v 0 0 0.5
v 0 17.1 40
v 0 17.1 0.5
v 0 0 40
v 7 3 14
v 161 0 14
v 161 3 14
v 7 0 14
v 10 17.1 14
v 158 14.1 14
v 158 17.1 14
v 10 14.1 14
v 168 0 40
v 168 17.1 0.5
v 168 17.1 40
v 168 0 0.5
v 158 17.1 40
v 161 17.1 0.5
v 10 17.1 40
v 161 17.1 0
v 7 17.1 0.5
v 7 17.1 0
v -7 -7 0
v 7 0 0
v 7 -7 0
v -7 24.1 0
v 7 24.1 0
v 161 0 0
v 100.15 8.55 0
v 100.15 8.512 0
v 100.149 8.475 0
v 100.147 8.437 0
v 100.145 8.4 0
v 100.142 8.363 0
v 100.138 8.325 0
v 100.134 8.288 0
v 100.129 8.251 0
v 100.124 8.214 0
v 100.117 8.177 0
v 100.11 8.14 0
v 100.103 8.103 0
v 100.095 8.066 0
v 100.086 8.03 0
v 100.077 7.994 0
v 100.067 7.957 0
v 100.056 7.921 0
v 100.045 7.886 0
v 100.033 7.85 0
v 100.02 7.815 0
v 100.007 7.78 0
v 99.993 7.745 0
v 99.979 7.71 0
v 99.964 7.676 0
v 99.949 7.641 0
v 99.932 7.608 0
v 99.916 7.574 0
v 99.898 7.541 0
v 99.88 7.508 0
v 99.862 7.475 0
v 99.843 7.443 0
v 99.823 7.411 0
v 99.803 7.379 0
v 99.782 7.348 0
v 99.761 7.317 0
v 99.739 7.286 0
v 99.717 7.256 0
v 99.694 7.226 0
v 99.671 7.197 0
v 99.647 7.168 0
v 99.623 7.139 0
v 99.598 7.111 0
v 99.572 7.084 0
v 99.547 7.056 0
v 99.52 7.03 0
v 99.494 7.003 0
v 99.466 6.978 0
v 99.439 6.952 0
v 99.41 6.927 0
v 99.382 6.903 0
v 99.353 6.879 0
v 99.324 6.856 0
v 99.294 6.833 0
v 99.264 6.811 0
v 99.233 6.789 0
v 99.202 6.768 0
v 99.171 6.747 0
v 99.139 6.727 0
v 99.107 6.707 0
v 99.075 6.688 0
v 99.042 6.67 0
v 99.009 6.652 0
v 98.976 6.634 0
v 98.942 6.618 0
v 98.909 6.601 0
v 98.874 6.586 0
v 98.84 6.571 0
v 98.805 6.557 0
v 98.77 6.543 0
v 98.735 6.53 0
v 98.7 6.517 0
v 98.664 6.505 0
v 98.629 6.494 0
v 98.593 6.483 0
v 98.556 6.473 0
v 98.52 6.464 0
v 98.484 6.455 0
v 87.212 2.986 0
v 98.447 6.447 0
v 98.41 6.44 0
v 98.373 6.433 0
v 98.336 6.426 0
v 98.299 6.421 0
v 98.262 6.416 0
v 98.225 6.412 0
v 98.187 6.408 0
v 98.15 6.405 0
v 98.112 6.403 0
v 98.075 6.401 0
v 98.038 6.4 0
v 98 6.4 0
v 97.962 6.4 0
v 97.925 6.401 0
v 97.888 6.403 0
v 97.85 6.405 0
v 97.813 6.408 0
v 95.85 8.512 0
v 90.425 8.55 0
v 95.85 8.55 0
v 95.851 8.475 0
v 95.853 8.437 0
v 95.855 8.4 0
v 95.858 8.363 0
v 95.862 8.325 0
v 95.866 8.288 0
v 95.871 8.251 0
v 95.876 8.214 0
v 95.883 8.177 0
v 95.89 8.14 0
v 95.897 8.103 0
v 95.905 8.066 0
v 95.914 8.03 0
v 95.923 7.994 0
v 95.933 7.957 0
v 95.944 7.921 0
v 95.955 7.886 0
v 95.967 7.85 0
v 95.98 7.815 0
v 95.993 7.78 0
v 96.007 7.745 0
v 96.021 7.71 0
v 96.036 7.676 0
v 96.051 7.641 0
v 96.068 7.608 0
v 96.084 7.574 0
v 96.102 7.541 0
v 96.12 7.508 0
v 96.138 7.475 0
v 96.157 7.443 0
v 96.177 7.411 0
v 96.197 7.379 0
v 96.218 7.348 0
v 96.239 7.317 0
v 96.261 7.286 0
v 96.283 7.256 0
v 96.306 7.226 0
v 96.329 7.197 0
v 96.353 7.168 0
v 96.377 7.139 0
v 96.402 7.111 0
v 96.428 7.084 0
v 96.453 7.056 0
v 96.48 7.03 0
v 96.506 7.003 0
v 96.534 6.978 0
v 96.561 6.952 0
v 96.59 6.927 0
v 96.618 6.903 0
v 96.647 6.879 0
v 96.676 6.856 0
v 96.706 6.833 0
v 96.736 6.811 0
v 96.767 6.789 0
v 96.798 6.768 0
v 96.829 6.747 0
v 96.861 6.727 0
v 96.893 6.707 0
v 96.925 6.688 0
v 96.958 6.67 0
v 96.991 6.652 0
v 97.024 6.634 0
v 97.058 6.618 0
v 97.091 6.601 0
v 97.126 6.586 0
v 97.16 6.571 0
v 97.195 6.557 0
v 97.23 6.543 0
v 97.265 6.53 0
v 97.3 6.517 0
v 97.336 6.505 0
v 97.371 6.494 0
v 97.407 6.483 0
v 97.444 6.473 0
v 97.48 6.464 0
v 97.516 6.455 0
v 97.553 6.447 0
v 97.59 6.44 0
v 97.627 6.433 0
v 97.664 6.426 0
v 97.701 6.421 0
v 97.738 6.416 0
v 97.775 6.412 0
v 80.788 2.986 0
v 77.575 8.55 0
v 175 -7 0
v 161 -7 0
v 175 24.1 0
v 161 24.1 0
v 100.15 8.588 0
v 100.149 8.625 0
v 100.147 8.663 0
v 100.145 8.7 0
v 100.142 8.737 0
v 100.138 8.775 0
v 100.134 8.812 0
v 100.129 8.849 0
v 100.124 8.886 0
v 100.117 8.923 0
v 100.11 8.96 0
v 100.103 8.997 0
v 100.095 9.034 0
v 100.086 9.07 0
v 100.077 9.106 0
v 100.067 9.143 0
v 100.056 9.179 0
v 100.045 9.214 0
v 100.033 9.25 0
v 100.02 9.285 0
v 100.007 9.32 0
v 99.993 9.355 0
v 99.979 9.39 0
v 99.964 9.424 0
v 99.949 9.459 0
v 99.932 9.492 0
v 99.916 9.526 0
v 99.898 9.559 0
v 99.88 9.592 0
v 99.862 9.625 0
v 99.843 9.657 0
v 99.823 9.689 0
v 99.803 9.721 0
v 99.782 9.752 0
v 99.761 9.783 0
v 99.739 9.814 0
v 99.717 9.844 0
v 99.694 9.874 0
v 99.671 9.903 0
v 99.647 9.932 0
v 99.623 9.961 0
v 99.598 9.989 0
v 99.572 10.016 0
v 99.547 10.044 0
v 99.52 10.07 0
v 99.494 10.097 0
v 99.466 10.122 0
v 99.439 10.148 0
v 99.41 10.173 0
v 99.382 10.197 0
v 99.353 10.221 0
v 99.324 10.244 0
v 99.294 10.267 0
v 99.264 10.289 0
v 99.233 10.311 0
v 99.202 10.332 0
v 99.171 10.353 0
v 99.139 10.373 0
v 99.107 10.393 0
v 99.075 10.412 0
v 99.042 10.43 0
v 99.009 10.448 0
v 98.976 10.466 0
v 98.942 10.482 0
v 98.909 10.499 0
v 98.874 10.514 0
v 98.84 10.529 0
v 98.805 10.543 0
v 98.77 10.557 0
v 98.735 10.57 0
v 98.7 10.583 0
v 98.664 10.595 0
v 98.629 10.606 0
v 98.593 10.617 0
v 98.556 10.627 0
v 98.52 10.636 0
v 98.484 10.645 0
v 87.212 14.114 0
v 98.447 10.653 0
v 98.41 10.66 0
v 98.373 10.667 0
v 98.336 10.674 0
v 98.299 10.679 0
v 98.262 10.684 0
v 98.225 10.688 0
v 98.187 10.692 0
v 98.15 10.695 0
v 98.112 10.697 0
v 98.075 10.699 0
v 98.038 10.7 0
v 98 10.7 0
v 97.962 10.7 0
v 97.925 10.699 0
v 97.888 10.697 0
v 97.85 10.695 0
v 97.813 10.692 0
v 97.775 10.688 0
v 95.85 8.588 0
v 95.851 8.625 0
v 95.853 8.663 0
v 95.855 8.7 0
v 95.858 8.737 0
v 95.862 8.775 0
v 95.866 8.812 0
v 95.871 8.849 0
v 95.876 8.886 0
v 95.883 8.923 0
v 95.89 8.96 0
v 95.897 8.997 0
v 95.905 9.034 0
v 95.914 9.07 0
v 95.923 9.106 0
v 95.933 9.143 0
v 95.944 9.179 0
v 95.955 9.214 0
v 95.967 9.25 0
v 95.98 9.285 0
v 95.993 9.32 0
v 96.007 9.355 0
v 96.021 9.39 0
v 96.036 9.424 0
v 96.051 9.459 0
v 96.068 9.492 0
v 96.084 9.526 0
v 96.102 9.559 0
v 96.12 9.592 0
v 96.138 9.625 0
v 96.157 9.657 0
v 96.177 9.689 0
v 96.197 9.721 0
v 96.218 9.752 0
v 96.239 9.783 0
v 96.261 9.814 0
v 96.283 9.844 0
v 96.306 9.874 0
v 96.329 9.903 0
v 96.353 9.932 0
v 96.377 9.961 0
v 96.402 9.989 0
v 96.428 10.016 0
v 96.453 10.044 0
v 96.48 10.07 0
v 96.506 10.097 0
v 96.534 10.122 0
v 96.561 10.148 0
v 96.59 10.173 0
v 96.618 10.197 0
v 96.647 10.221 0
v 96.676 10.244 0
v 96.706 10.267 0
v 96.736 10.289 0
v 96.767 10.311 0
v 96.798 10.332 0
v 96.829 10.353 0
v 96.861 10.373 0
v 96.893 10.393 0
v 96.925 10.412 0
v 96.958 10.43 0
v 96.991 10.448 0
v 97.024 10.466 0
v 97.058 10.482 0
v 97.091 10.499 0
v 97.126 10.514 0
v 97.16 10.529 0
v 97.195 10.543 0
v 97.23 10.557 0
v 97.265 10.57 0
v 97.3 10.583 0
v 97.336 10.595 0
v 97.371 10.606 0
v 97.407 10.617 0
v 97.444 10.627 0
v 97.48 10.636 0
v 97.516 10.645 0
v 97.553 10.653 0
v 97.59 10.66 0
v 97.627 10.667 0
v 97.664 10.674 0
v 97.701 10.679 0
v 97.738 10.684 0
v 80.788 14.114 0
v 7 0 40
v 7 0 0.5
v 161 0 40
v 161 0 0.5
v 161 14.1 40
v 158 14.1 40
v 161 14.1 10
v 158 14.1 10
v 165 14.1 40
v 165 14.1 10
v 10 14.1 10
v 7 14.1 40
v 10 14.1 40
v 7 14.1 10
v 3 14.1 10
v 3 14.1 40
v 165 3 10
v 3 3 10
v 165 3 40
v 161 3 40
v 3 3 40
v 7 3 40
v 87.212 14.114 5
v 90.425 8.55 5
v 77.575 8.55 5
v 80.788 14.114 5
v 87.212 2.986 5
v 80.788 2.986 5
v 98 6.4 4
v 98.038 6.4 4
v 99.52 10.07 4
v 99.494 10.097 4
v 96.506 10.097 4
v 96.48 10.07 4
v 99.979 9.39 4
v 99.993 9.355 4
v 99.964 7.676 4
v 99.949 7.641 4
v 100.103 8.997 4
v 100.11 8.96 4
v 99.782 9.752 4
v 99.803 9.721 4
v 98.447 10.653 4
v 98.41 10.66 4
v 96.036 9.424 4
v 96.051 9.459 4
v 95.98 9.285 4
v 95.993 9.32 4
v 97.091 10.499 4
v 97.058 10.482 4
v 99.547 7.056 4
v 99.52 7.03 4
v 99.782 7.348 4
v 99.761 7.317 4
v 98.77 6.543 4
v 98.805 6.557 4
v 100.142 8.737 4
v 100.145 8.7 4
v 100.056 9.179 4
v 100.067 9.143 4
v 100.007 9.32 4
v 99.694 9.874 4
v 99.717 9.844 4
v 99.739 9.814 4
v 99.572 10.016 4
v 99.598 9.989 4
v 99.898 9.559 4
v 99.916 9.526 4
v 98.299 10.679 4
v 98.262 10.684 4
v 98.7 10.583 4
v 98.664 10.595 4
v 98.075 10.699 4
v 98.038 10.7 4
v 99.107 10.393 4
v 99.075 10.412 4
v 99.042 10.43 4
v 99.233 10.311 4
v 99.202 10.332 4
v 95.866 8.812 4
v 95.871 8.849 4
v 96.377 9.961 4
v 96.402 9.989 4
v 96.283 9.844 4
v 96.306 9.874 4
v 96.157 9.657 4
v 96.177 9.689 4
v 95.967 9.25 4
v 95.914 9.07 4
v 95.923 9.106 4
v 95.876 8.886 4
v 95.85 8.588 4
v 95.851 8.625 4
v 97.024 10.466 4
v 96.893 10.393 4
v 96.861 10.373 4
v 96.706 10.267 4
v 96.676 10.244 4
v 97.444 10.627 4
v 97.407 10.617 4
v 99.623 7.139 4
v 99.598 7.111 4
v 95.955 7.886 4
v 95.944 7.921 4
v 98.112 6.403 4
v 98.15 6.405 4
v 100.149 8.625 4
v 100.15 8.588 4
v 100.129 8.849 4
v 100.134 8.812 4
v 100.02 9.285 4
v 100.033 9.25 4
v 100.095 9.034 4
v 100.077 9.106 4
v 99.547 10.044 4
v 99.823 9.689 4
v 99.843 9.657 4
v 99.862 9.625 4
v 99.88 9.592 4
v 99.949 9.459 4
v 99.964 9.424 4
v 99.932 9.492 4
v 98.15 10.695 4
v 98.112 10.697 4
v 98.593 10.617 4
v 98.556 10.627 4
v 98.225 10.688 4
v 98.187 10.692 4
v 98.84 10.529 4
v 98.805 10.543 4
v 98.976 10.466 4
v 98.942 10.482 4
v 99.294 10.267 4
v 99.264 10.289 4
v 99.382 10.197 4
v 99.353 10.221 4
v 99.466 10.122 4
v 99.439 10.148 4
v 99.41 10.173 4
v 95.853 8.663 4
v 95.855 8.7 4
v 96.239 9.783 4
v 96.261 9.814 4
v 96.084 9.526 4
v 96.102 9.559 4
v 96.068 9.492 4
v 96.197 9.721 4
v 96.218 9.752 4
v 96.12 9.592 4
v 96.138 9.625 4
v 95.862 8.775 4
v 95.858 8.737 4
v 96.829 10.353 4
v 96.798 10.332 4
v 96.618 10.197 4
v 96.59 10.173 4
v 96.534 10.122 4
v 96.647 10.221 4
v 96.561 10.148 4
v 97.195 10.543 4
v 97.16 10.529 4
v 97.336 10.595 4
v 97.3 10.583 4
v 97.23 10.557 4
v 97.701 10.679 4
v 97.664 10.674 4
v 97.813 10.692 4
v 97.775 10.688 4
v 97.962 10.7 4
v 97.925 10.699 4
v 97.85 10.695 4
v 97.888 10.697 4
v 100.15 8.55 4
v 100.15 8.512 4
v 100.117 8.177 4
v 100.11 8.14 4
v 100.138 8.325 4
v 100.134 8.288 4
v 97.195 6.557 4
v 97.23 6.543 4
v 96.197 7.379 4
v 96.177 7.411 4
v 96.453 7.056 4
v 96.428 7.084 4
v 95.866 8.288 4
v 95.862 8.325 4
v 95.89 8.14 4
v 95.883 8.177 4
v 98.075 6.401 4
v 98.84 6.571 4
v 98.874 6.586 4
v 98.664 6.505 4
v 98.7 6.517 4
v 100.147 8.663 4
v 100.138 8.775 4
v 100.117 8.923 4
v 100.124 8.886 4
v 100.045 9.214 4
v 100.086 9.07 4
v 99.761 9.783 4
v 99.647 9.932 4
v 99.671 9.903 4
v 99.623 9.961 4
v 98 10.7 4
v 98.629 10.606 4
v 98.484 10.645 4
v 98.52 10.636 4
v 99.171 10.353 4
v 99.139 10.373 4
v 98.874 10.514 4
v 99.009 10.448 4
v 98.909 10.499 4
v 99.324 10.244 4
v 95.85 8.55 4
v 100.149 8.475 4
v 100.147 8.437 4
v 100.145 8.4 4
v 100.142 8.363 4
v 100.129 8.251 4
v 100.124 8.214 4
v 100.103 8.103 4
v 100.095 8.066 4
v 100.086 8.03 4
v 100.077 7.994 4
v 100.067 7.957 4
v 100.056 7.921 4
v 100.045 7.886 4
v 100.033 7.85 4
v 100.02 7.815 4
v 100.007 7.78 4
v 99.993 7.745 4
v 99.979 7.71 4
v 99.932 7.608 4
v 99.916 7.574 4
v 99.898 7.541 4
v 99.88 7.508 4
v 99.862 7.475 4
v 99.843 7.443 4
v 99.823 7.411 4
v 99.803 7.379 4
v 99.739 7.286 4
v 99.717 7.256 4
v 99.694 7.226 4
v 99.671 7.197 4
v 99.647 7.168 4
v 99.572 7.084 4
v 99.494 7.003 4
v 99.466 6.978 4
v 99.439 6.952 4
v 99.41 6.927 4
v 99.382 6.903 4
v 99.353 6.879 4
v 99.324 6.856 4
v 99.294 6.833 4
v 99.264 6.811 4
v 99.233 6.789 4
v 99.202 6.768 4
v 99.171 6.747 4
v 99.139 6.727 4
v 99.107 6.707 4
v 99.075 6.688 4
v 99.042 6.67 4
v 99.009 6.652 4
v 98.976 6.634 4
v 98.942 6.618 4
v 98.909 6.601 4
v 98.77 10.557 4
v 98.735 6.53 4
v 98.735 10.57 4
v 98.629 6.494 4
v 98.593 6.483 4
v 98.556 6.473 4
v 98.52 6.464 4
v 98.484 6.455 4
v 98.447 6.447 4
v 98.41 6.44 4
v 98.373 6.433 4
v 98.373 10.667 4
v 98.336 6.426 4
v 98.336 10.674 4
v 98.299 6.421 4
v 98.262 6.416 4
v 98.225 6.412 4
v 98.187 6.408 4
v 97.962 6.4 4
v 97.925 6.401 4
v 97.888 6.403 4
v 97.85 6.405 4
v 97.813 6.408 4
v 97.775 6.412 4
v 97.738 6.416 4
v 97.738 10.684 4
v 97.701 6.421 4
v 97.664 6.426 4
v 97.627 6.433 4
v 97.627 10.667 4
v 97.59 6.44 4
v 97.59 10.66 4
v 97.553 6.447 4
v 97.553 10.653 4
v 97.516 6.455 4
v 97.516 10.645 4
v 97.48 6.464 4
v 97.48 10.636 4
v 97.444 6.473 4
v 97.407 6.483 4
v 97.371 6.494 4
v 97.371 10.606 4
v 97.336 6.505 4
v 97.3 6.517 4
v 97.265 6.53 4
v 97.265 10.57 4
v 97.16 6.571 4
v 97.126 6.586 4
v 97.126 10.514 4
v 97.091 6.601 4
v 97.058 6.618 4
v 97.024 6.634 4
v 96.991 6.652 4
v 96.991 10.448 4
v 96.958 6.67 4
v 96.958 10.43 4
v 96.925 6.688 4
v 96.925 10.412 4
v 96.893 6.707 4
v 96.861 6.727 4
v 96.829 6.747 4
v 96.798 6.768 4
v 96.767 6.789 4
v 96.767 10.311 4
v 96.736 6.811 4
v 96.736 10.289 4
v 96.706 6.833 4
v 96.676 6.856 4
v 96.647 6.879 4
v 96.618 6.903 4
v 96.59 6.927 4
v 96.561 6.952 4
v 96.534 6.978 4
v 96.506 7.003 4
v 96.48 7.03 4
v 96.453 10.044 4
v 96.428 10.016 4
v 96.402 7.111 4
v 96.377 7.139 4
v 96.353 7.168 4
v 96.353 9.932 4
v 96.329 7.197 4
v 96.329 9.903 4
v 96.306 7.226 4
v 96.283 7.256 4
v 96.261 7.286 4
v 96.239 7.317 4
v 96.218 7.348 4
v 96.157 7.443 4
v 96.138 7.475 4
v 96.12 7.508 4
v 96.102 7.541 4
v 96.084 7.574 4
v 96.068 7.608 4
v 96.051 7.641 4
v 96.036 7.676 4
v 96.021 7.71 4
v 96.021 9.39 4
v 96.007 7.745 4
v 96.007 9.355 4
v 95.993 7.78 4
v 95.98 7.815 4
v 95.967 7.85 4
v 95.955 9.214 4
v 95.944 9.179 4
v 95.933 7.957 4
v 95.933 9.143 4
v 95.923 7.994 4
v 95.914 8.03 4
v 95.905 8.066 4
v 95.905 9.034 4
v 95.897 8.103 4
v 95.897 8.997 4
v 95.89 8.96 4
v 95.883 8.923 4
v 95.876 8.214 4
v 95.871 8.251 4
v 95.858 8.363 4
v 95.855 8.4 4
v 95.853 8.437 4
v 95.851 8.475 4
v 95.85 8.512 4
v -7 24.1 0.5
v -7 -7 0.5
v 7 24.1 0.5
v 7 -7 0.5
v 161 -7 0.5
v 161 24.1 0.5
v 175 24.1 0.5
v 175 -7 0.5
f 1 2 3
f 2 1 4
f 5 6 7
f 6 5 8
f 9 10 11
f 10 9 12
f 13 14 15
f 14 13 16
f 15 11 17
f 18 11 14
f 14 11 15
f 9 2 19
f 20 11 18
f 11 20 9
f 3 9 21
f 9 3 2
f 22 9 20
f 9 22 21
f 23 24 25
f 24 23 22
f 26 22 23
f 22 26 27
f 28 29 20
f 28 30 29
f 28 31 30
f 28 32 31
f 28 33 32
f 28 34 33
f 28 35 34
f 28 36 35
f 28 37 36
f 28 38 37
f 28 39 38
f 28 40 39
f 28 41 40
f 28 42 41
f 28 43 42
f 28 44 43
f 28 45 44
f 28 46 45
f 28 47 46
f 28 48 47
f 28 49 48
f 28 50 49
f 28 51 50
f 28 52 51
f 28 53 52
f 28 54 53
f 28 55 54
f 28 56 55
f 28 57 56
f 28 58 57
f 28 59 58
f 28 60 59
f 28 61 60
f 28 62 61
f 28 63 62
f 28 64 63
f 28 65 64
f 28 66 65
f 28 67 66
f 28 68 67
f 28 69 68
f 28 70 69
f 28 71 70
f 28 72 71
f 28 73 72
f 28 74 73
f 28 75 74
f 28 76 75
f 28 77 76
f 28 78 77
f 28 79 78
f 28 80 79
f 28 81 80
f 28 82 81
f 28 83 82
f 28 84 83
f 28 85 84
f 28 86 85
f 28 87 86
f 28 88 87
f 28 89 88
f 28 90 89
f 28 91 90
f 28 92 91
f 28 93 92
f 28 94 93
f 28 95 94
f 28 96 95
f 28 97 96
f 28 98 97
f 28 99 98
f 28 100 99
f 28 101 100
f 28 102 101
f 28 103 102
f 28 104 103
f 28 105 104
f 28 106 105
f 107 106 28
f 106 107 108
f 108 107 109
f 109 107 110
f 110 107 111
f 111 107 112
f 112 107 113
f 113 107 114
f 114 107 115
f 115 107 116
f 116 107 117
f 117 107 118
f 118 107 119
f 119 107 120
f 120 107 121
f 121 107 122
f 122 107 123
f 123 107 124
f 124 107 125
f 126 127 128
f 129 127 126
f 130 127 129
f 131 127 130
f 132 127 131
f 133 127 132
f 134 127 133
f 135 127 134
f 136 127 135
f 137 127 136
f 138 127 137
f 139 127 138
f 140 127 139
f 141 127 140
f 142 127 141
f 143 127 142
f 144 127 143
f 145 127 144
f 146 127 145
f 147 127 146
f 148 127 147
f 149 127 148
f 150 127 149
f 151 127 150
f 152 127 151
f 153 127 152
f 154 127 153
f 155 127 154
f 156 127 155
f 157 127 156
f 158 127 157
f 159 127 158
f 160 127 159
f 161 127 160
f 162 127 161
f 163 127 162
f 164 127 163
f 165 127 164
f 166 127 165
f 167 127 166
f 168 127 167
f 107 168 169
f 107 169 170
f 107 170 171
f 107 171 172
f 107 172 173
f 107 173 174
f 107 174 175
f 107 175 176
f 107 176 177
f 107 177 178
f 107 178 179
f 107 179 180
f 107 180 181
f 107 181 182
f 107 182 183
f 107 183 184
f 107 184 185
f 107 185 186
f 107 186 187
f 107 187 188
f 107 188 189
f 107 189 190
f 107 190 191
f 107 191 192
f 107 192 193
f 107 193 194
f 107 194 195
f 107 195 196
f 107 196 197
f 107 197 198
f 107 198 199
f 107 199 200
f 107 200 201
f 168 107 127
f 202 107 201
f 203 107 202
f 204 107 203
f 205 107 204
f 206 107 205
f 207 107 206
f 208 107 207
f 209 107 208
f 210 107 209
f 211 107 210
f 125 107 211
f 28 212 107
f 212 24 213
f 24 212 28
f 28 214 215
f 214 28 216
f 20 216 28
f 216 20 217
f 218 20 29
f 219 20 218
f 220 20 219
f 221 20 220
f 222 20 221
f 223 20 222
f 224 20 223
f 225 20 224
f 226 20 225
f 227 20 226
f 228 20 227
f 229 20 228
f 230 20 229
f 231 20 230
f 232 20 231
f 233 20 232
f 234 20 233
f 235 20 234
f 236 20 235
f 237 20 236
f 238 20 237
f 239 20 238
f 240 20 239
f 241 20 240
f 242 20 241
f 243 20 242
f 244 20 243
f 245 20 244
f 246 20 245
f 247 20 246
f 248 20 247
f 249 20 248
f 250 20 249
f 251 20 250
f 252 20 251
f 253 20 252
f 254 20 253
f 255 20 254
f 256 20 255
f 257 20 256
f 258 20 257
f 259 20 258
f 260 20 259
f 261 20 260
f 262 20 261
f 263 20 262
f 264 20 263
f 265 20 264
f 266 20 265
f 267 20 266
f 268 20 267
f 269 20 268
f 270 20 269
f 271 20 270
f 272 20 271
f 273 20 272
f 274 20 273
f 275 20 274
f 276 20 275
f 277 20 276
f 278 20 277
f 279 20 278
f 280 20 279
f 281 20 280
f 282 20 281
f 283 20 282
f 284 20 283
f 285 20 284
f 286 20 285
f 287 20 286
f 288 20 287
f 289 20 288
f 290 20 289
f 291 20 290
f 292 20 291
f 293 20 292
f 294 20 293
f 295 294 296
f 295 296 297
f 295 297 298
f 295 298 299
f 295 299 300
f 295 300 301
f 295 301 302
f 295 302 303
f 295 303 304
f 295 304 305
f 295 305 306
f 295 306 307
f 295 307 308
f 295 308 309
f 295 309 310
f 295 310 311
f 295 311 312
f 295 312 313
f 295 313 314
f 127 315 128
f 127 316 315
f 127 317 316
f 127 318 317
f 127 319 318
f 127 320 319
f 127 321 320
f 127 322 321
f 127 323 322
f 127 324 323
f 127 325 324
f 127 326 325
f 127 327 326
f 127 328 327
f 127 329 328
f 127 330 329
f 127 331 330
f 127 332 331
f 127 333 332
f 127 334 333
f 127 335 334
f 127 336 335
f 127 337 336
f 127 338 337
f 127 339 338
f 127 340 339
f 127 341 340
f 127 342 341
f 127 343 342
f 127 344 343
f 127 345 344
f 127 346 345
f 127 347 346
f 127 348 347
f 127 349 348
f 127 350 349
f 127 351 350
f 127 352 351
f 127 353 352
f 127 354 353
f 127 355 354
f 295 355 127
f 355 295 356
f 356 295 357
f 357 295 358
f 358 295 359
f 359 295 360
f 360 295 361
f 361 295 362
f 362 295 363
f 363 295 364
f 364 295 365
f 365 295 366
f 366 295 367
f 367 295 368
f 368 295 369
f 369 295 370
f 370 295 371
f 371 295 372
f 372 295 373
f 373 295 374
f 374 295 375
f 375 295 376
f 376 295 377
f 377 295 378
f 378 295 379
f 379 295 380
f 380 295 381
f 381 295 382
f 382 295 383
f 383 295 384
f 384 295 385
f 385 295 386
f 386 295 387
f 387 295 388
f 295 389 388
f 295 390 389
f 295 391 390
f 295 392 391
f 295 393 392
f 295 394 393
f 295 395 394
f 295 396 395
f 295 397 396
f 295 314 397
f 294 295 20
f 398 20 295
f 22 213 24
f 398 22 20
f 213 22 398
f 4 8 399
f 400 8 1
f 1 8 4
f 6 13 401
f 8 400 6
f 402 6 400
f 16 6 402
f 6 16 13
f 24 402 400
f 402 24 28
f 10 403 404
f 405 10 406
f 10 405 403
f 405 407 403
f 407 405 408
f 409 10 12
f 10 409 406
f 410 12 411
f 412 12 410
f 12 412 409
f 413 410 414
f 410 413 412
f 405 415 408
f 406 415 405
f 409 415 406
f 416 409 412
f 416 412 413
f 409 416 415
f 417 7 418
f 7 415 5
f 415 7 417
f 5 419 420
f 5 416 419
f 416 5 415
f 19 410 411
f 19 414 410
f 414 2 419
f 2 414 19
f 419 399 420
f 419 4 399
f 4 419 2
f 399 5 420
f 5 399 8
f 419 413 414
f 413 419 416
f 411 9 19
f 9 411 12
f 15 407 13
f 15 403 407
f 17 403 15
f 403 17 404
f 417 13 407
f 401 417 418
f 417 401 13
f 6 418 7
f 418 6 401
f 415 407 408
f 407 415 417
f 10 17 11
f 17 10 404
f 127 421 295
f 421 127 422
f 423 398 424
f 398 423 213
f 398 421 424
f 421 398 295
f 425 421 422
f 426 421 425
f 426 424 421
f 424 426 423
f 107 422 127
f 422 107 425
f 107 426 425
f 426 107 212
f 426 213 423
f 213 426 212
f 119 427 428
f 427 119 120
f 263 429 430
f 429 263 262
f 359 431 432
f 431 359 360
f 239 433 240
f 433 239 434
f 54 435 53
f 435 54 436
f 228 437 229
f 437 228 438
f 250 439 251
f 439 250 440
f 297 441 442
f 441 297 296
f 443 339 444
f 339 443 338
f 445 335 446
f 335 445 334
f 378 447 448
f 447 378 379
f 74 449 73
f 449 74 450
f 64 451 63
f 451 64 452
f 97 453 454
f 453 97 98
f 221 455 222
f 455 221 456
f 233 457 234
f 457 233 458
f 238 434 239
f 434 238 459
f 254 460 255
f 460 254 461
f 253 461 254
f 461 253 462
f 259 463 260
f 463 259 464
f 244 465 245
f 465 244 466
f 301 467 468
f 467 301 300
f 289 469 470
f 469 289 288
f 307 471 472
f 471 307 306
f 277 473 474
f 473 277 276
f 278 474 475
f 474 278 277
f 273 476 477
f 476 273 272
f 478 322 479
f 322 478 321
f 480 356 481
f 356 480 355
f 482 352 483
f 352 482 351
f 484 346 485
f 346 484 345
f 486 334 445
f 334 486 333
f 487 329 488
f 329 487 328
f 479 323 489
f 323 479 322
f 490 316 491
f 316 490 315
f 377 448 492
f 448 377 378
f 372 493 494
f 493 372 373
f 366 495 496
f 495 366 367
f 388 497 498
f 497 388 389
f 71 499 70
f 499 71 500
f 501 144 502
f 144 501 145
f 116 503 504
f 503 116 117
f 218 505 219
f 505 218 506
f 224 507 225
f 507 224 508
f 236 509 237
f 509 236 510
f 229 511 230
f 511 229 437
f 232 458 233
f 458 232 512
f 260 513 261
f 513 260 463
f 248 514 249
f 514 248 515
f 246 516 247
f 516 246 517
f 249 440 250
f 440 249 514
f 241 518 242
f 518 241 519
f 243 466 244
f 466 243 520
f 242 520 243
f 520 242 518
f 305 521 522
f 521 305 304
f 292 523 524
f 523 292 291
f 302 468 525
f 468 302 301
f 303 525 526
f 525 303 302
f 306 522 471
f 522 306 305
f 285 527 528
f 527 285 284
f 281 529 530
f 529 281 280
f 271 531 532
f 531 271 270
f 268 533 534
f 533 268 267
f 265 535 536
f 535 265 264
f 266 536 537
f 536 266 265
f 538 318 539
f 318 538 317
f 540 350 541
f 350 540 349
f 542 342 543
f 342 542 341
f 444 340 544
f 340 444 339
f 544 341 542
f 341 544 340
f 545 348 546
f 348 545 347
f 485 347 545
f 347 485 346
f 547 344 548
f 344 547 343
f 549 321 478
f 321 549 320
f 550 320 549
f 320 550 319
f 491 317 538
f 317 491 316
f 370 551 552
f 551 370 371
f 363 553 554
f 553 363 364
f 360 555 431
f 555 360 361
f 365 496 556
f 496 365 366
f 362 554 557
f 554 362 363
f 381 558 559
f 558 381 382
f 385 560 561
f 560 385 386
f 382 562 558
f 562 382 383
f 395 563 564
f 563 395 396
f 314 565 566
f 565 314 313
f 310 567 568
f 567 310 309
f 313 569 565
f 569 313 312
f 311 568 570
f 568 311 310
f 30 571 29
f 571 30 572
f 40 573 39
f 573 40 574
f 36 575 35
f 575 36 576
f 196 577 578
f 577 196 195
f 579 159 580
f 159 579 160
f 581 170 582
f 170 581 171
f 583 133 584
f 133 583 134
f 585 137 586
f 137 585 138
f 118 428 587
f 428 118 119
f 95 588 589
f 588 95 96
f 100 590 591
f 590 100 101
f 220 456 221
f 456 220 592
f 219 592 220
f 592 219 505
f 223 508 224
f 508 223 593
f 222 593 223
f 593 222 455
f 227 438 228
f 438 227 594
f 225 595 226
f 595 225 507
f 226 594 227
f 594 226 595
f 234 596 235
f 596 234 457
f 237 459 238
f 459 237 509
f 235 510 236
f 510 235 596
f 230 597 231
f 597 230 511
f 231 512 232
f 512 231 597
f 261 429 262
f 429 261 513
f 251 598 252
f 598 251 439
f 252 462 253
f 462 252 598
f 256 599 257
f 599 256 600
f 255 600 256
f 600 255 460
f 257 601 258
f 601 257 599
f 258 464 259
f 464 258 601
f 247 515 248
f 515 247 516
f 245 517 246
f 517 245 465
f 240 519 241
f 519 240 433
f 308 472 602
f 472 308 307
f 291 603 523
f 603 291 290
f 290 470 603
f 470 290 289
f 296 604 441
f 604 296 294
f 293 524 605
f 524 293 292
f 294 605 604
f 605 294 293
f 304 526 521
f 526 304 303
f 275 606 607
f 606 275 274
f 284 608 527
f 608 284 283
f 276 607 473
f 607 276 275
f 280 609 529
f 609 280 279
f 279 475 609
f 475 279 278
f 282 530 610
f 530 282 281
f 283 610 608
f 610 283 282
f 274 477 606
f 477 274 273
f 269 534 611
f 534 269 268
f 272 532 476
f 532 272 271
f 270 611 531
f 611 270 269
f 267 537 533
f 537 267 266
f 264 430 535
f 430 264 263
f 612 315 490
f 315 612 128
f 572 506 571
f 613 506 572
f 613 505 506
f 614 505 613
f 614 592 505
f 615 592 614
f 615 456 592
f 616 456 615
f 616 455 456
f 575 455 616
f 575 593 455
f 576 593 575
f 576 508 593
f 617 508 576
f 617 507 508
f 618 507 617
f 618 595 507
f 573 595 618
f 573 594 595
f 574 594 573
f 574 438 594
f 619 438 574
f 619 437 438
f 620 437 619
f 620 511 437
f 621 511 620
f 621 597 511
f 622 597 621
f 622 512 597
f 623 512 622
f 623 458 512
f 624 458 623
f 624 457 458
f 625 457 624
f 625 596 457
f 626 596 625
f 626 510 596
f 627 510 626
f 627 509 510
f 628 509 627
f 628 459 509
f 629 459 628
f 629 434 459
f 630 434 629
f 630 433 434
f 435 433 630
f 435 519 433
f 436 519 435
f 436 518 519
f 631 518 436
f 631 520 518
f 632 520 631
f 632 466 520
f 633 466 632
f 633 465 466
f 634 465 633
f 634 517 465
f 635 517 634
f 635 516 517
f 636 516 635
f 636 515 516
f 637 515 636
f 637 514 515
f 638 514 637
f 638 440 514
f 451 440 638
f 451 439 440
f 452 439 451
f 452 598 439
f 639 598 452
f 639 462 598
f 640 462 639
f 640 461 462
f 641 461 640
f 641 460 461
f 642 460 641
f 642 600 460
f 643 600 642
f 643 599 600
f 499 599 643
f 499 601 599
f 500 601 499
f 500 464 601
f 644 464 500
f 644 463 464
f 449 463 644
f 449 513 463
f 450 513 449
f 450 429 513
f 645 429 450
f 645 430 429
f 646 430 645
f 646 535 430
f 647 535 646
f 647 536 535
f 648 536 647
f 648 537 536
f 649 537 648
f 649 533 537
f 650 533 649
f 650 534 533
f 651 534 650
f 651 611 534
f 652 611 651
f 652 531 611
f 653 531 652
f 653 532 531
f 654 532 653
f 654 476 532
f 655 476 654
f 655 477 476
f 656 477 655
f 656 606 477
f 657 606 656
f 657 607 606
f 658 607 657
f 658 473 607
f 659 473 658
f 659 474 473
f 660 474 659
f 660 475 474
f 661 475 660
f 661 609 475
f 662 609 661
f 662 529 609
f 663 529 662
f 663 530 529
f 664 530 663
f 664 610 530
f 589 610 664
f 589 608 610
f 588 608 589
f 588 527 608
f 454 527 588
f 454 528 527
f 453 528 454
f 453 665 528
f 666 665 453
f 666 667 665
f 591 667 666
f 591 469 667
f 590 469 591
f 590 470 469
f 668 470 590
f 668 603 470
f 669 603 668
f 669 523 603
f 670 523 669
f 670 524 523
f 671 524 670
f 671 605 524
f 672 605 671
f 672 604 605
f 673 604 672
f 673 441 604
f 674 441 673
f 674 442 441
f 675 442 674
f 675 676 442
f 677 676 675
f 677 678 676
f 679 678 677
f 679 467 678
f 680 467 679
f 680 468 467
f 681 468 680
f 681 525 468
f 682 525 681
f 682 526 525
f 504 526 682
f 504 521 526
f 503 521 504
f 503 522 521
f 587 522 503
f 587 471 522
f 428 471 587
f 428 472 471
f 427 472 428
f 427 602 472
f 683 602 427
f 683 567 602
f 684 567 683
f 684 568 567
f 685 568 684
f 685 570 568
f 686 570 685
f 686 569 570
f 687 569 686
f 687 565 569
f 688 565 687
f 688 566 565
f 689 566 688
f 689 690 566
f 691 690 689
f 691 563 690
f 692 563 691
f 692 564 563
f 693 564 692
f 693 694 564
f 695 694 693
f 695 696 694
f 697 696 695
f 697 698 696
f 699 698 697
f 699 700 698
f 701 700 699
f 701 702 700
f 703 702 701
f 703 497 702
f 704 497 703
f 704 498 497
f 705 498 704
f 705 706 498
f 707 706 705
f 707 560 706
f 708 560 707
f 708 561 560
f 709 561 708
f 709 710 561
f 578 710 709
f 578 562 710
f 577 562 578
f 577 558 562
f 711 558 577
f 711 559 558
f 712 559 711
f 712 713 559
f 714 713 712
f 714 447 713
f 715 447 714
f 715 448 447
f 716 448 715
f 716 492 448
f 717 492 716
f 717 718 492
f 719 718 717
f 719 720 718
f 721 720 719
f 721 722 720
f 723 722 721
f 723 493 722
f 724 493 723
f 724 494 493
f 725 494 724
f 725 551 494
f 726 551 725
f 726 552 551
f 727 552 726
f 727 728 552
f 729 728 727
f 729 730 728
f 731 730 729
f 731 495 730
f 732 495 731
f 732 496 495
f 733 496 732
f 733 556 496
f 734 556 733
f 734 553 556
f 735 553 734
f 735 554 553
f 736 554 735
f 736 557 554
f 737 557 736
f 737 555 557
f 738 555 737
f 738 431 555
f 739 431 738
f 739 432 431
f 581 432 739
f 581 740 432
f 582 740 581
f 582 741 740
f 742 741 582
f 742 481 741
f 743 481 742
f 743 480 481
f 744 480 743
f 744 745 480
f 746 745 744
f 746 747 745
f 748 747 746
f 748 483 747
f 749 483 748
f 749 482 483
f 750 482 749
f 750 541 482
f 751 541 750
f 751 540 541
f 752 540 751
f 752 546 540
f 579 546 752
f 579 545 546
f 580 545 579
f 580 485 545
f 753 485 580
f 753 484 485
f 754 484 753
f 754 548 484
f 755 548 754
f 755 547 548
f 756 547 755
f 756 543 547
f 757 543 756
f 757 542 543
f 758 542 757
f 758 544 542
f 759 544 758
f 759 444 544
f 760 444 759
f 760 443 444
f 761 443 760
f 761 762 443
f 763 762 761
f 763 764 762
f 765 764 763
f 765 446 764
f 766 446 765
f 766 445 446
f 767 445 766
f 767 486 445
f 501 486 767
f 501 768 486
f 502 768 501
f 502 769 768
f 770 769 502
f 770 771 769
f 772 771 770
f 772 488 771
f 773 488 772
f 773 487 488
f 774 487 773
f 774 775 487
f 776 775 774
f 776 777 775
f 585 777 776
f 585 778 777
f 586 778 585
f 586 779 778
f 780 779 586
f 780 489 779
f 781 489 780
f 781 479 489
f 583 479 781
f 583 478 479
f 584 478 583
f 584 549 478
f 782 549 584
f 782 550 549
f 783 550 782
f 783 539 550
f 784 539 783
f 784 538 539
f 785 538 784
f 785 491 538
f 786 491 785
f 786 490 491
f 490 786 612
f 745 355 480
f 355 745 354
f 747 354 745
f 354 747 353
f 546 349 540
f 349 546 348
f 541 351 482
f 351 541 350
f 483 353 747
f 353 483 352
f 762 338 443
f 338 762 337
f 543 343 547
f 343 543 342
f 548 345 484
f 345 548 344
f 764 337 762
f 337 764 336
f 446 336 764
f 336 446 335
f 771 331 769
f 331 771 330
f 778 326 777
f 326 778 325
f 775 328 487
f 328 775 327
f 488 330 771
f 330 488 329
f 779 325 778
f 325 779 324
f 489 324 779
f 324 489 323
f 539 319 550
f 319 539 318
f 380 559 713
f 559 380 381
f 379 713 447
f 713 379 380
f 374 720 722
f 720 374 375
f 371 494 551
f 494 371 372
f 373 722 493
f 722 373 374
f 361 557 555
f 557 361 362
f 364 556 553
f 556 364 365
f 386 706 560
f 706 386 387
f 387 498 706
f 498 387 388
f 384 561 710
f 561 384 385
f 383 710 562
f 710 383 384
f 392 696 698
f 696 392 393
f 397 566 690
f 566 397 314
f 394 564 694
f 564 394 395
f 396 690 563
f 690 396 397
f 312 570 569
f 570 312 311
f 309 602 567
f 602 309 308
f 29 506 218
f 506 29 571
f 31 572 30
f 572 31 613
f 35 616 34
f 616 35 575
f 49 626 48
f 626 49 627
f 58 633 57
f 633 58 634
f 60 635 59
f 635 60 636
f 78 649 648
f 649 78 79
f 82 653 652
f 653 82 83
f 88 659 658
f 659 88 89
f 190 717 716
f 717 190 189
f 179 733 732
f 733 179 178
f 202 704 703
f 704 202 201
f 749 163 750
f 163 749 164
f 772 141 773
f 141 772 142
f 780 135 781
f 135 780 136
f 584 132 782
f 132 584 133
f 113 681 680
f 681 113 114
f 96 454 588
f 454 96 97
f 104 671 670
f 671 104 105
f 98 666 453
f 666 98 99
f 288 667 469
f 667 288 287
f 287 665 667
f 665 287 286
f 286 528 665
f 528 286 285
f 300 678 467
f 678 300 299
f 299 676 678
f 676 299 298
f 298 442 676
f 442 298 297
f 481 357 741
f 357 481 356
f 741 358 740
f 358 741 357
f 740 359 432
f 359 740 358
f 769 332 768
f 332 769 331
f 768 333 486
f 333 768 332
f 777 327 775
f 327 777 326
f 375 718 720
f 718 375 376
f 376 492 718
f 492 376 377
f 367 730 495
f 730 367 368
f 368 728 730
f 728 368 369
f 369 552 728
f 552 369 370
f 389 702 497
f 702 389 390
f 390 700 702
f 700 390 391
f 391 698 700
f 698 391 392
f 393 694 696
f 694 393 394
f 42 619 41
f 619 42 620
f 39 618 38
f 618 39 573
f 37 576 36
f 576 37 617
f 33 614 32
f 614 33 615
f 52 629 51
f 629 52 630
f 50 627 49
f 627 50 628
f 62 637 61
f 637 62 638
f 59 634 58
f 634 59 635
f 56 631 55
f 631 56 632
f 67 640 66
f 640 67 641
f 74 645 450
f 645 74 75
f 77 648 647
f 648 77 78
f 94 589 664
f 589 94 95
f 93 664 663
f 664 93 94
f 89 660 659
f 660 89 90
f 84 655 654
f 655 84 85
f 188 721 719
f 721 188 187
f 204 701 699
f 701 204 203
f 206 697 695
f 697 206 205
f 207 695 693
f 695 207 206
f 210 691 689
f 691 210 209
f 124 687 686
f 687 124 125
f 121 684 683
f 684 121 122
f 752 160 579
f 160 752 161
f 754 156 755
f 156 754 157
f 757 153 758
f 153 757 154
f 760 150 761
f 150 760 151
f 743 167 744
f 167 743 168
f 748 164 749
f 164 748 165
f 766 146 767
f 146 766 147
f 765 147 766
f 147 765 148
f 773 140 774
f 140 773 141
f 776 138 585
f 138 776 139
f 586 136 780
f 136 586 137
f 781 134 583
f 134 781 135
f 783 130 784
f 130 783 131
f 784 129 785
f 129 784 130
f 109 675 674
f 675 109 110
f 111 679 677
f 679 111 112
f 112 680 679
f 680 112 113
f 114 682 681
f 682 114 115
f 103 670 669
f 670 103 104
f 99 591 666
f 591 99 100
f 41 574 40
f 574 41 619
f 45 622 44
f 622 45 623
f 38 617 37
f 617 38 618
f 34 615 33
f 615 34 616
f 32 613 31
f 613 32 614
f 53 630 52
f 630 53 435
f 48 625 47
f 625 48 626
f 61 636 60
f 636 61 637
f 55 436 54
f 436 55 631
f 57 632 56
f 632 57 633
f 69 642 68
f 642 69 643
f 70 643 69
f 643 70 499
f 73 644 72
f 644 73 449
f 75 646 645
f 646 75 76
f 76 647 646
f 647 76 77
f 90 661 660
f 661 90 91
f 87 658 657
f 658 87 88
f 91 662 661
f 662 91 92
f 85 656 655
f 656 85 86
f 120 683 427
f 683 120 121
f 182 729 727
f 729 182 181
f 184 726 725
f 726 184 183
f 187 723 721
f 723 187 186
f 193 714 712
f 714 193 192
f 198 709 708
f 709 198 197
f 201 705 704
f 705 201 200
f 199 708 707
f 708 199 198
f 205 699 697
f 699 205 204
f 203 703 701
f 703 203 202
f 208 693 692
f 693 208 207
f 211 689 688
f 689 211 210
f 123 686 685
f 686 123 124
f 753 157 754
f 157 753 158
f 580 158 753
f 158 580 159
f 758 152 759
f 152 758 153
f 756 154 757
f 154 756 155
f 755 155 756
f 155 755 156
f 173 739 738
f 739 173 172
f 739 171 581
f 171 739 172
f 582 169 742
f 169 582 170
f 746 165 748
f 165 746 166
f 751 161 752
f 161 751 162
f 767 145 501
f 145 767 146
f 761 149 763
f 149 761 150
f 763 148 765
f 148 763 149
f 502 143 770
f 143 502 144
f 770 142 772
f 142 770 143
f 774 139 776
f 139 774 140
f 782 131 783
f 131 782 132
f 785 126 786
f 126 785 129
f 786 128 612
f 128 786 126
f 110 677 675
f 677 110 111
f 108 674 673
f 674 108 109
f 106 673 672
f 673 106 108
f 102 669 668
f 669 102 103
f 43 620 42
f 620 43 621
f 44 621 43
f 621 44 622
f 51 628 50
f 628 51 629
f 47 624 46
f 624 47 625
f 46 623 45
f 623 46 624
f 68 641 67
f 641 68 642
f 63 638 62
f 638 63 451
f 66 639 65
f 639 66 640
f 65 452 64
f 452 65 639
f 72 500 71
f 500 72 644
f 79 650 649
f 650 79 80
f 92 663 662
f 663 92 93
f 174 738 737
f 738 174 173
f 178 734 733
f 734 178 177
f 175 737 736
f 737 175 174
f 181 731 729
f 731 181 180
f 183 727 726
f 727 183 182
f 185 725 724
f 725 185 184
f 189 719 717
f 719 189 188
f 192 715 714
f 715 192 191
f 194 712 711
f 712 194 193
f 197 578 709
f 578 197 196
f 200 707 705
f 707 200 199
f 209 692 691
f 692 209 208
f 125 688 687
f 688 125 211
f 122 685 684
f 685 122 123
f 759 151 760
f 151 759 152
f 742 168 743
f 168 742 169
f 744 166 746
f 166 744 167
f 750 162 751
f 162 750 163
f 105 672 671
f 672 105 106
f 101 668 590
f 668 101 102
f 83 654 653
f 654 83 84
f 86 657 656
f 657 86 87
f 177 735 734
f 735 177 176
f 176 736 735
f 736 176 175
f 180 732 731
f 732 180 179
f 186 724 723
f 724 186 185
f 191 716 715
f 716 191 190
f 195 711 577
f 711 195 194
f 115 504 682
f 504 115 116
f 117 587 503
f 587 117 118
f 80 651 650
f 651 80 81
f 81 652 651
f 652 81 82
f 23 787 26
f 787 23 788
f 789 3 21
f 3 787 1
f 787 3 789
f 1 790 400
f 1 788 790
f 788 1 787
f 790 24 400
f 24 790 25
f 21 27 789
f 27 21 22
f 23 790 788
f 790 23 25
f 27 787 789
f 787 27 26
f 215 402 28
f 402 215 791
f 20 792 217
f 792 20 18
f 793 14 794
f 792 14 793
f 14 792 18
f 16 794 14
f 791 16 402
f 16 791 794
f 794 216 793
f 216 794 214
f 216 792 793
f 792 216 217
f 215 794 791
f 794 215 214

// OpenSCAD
//
// Phone (P_* variables):
//   162mm wide
//    11mm thick
//    40mm tall (to USB jack)
//     5mm inset (case to screen)
//
// Holder (c_* variables):
//   10mm thick base
//    3mm walls
//
p_width  = 162.0; // Phone width (including case)
p_thick  =  11.1; // Phone thickness (including case)
p_height =  30.0; // Phone height (including case, up to USB jack)
p_bezel  =   4.0; // Edge of case to phone screen distance

h_thick  =  10.0; // Thickness of base (not including bezel)
h_walls  =   3.0; // Thickness of bezel walls

nut_d    = 12.85; // Diameter of 1/4-20 nut
nut_h    =  5.00; // Height of 1/4-20 nut

pin_d    =  4.3;  // Index pin diameter
pin_h    =  4.0;  // Index pin height
pin_off  = 14.0;  // Index pin offset from center of 1/4-20 nut

module phone_holder_side (x = 0) {
  translate ([x, 0, h_thick]) {
    difference () {
      translate ([0, 0, 0])
        cube ([p_bezel + h_walls, h_walls + p_thick + h_walls, p_height]);
      translate ([h_walls, h_walls, 0])
        cube ([p_bezel, p_thick, p_height]);
    }
    translate ([p_bezel + h_walls, h_walls + p_thick, 0])
      cube ([h_walls, h_walls, p_height]);
  }
}

module phone_holder_left_side (x = 0) {
  phone_holder_side (x);
}

module phone_holder_right_side (x = 0) {
  mirror ([1, 0, 0])
    phone_holder_side (-((h_walls * 2) + x));
}

module phone_holder_base () {
  difference () {
    translate ([0, 0, 0])
      cube ([(h_walls * 2) + p_width, (h_walls * 2) + p_thick, h_thick + p_bezel]);
    translate ([0, h_walls, h_thick])
      cube ([(h_walls * 2) + p_width, p_thick, p_bezel]);
  }
}

module phone_holder () {
  difference () {
    union () {
      phone_holder_base ();
      phone_holder_left_side (0);
      phone_holder_right_side (p_width);
    }
    translate ([((h_walls * 2) + p_width) / 2, ((h_walls * 2) + p_thick) / 2, 0])
      cylinder (h = nut_h, d = nut_d, $fn = 6);
    translate ([(((h_walls * 2) + p_width) / 2) + pin_off, ((h_walls * 2) + p_thick) / 2, 0])
      cylinder (h = pin_h, d = pin_d, $fn = 360);
  }
}

union () {
  phone_holder ();
  
  translate ([-7, -7, 0])
    cube ([14, 14 +  (h_walls * 2) + p_thick, 0.5]);
  translate ([((h_walls * 2) + p_width) - 7, -7, 0])
    cube ([14, 14 +  (h_walls * 2) + p_thick, 0.5]);
}
